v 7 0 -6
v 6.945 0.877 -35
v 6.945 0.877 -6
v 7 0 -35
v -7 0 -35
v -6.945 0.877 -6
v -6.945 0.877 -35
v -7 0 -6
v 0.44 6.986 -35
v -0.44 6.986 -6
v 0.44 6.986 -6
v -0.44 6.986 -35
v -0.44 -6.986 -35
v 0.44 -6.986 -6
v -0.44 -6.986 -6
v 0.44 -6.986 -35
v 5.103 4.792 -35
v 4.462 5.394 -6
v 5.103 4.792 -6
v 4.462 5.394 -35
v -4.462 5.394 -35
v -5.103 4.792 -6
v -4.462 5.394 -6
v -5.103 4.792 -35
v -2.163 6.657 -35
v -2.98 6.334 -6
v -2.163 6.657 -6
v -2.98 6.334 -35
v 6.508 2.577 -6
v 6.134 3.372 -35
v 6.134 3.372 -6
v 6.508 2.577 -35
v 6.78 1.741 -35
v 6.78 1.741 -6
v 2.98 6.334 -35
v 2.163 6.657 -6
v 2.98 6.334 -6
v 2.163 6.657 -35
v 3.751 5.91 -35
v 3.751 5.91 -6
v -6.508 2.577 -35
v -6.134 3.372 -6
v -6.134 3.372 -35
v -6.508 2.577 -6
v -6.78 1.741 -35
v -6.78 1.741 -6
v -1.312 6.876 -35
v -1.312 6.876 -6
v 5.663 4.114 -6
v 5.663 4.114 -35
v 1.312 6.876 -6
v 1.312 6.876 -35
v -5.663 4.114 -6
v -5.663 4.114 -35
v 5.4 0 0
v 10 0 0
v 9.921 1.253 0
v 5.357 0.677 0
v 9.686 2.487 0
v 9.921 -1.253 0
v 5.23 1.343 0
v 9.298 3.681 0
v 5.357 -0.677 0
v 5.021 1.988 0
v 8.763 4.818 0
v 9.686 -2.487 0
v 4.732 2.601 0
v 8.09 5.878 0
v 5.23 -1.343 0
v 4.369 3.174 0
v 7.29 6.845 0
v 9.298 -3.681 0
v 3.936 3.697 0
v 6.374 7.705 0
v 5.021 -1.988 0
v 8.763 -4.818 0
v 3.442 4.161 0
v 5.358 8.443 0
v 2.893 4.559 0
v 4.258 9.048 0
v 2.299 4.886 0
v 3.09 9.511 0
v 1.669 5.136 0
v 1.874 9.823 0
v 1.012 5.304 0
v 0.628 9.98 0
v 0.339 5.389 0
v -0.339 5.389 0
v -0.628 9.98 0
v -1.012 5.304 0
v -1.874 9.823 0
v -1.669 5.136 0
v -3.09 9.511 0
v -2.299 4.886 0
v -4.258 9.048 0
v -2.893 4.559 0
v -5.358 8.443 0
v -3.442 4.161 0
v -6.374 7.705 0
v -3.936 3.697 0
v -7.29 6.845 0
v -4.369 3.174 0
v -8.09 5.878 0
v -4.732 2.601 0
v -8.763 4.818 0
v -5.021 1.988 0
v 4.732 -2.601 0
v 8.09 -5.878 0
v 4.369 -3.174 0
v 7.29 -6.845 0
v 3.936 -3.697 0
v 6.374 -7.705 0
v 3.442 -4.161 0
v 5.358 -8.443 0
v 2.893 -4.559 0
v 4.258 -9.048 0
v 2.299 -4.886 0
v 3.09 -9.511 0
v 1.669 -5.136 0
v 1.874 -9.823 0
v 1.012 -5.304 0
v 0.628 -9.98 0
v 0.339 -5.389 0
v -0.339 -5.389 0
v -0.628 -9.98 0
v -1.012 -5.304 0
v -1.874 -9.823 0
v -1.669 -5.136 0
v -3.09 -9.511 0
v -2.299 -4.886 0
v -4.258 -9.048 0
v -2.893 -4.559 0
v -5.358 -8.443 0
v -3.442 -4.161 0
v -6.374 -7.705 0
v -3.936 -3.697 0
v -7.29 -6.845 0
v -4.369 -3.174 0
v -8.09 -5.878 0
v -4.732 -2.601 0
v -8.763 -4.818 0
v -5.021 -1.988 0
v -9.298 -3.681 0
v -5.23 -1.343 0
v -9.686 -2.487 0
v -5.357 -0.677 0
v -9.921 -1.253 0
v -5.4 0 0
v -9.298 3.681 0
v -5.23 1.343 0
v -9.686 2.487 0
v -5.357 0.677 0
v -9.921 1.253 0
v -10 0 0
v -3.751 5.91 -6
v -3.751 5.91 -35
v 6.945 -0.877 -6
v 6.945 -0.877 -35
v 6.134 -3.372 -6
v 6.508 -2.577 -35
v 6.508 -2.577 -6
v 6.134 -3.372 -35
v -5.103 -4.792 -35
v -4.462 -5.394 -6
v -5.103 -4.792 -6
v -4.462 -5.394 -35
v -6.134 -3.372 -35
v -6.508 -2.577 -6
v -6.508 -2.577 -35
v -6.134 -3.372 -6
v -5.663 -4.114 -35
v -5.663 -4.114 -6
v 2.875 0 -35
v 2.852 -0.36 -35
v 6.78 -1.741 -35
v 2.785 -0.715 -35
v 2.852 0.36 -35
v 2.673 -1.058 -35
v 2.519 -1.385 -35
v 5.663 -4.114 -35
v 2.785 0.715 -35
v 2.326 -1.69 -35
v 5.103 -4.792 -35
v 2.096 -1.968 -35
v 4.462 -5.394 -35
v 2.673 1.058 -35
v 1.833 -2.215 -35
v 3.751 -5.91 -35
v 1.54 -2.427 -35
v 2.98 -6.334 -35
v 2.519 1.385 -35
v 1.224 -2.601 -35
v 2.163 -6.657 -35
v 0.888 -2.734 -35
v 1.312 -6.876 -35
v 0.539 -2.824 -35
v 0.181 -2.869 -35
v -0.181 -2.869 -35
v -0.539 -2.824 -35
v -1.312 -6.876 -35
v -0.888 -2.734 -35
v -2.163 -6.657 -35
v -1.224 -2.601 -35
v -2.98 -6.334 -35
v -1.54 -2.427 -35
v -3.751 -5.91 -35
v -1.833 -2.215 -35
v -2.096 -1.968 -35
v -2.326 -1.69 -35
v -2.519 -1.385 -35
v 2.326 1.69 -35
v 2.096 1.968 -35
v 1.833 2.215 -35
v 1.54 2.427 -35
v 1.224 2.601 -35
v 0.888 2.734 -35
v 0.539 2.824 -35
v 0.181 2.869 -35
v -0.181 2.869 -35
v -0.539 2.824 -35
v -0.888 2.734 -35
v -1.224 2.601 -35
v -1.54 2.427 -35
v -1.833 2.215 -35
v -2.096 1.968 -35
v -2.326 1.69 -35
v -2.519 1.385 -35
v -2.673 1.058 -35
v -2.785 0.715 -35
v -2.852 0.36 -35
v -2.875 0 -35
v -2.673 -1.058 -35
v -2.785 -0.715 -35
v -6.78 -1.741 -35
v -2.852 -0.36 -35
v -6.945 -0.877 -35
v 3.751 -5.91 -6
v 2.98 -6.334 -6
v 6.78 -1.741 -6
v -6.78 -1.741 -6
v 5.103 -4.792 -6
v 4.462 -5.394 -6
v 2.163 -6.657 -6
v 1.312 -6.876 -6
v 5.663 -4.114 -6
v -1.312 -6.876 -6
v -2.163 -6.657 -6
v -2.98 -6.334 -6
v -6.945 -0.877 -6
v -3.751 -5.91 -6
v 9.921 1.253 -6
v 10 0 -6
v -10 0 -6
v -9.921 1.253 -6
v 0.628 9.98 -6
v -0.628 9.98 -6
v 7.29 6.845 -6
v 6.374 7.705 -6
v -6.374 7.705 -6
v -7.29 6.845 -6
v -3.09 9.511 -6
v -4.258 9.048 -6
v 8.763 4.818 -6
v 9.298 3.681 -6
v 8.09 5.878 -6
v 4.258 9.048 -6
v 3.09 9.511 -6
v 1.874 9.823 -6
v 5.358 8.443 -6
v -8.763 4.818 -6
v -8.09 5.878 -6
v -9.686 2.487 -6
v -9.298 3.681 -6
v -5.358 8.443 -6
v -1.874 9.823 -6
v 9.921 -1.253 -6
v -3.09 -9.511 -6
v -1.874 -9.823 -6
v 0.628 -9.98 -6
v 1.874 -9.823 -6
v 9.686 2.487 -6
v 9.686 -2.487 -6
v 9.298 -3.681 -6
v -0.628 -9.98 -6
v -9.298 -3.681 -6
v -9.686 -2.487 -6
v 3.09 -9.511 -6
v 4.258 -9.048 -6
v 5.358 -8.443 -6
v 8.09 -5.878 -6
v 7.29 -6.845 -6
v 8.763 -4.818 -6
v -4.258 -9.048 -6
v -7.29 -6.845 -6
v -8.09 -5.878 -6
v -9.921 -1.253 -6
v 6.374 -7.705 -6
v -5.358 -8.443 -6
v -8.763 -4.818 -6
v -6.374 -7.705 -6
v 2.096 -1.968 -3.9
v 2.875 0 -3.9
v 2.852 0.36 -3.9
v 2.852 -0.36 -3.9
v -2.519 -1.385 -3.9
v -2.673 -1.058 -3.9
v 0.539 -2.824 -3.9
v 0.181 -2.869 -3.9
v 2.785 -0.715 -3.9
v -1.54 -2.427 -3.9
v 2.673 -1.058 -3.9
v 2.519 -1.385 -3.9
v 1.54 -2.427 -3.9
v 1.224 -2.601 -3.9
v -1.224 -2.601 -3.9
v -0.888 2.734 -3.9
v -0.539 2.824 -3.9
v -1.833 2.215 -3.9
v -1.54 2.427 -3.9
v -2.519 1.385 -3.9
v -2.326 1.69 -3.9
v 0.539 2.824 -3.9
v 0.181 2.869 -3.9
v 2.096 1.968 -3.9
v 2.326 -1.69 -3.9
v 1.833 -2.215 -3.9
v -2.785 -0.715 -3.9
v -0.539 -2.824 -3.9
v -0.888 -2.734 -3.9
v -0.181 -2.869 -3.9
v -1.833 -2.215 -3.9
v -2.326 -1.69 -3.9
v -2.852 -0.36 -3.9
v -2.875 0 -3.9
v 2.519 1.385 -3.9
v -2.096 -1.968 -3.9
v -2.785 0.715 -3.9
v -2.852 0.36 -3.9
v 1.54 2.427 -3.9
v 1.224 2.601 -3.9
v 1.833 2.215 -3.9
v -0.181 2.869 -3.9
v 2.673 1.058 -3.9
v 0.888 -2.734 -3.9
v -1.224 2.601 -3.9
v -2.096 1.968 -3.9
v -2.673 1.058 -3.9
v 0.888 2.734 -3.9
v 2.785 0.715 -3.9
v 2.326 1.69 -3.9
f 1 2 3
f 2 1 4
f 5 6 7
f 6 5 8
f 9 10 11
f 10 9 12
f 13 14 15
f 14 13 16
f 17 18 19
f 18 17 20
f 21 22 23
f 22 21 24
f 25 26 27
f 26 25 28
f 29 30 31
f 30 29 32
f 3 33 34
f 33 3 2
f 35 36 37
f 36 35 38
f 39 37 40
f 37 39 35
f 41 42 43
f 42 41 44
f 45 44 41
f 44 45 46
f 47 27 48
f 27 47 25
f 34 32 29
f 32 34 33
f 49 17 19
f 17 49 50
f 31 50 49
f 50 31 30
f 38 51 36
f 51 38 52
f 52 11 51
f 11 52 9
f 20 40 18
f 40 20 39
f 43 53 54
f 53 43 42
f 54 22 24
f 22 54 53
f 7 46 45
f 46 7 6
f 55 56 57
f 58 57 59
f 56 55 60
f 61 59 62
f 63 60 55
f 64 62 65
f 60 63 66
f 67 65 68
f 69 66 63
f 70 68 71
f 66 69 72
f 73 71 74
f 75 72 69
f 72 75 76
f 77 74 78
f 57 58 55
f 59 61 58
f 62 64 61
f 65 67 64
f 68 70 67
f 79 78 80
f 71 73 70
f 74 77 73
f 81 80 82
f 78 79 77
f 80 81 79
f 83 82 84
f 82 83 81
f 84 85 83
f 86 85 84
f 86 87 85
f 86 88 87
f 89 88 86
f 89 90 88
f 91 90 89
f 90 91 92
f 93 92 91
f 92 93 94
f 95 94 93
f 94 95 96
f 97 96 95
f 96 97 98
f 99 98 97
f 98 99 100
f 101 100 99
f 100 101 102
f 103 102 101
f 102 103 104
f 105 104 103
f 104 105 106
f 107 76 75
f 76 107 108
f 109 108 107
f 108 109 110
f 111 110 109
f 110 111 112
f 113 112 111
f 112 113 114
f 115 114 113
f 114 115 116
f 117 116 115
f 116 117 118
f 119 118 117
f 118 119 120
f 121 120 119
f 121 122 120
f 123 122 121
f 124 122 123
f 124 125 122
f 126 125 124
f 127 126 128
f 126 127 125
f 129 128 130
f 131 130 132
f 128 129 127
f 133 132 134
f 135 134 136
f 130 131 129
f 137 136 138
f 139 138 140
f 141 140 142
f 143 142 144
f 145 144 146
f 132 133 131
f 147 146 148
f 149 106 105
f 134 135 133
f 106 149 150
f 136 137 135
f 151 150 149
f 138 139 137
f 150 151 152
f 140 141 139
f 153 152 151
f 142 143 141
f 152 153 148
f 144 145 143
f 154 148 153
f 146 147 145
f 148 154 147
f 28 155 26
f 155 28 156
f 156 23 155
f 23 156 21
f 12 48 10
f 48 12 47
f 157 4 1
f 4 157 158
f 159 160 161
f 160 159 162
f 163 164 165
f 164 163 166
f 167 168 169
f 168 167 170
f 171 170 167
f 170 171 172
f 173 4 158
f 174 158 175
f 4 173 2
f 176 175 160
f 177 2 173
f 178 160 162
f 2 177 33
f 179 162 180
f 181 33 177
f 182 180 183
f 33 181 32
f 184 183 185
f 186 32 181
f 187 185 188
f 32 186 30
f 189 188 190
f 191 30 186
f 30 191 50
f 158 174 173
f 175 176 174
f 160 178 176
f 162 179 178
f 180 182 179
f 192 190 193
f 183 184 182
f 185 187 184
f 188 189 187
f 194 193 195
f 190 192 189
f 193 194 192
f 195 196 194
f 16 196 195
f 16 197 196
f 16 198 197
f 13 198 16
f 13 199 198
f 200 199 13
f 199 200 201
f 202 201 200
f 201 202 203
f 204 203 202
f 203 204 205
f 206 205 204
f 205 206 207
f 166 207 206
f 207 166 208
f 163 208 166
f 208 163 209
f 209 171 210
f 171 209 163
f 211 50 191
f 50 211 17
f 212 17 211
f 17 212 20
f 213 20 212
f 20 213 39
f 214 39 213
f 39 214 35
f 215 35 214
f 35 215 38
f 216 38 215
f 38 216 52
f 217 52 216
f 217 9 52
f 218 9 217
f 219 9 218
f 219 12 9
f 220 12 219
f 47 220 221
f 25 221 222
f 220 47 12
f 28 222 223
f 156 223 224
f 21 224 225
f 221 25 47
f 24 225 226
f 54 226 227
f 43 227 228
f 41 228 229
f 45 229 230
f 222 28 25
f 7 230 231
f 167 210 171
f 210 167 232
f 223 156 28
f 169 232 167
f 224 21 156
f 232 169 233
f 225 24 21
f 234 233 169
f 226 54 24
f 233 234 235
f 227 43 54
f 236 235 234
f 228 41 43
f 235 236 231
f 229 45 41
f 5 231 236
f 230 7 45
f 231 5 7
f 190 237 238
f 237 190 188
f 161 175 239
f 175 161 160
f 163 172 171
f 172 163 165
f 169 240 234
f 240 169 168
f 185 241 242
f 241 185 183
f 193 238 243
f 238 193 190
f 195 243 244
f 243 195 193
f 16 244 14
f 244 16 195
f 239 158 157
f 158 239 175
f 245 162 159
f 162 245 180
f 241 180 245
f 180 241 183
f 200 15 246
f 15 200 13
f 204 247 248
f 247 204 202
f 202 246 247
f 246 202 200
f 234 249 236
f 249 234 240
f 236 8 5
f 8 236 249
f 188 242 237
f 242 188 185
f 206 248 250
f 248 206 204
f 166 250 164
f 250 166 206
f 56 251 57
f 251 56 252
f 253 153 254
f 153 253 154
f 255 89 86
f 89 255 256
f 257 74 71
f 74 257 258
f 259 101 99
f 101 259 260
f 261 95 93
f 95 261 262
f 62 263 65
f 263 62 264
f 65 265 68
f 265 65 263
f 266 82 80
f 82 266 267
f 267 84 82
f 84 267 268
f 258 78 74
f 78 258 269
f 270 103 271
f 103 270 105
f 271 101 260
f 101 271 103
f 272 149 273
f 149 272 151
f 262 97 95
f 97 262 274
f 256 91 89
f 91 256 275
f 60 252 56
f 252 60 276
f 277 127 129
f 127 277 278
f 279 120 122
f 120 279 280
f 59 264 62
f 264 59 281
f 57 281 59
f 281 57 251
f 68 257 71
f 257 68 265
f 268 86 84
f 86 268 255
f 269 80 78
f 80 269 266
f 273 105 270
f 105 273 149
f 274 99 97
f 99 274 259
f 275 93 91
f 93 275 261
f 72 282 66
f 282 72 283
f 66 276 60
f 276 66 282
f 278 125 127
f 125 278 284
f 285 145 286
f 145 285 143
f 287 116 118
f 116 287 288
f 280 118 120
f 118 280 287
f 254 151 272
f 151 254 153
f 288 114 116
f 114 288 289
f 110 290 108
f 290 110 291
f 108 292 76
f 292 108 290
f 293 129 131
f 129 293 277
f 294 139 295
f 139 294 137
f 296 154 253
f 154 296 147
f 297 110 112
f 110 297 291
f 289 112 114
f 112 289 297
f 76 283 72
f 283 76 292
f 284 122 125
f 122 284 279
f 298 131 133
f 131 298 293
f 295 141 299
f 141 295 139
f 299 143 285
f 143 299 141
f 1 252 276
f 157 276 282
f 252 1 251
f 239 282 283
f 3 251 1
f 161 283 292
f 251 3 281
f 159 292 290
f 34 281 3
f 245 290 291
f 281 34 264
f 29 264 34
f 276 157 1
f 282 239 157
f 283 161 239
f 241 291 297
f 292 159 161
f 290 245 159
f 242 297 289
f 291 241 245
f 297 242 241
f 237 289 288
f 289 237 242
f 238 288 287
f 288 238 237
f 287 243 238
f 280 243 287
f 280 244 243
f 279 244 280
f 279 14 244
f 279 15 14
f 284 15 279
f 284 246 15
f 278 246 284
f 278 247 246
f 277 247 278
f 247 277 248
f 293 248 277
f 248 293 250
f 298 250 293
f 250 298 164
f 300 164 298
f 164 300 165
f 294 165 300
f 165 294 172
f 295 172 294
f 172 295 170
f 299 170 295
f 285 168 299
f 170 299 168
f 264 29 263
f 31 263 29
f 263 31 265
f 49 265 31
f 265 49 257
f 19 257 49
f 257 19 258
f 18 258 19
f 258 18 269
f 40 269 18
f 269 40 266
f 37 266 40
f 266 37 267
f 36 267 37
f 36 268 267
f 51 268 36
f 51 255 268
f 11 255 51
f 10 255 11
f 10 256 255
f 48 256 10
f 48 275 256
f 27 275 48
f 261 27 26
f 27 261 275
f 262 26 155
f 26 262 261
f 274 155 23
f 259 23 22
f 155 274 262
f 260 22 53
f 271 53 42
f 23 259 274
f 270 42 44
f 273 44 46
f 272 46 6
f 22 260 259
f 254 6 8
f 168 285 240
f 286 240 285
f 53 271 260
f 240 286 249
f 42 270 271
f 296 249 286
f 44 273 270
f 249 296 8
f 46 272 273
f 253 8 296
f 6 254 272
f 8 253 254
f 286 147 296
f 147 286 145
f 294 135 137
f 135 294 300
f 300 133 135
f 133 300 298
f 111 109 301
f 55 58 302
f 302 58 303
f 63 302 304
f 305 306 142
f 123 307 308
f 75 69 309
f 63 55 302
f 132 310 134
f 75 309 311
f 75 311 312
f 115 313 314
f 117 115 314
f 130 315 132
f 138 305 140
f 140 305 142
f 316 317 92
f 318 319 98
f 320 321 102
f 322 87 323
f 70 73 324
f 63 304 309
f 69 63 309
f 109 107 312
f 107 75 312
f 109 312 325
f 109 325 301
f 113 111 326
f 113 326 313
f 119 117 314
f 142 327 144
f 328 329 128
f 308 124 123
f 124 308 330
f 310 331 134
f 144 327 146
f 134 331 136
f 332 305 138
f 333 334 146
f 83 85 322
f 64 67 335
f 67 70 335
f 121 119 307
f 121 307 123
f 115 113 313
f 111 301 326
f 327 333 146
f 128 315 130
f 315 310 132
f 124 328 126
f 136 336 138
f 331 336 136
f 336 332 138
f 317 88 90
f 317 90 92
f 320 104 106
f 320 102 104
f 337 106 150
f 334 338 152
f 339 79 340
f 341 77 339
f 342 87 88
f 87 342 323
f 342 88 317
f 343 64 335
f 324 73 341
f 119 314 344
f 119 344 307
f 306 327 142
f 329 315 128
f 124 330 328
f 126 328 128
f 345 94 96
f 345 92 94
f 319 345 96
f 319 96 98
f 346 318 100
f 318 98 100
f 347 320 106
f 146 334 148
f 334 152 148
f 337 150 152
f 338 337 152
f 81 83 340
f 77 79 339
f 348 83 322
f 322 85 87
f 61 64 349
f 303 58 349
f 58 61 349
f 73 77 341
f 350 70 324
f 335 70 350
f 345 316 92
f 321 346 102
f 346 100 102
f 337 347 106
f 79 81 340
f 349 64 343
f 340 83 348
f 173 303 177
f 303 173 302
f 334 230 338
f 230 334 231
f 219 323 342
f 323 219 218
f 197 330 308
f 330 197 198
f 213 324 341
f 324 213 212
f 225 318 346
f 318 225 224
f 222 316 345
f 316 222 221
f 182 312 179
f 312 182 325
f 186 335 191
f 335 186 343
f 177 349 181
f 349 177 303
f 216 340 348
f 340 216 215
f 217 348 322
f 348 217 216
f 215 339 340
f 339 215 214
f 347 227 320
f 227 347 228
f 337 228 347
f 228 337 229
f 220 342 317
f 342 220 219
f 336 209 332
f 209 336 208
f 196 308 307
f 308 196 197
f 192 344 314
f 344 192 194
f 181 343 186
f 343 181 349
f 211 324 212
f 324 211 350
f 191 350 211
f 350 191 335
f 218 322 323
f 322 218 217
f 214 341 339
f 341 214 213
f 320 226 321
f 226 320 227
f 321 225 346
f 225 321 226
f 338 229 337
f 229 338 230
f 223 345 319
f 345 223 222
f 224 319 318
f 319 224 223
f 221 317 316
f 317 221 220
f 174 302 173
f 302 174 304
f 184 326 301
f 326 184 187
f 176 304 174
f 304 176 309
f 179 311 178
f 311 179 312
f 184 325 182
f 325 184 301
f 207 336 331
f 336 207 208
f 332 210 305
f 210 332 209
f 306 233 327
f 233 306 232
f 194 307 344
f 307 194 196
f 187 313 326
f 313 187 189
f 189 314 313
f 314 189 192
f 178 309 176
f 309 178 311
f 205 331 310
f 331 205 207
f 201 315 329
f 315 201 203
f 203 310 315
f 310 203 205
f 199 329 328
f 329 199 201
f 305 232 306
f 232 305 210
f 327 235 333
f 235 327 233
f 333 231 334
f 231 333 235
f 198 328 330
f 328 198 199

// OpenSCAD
$fn = 50;


difference() {
	union() {
		translate(v = [0, 0, -35.0000000000]) {
			cylinder(h = 35, r = 7.0000000000);
		}
		translate(v = [0, 0, -6.0000000000]) {
			cylinder(h = 6, r = 10.0000000000);
		}
	}
	union() {
		translate(v = [0, 0, 0]) {
			rotate(a = [0, 0, 0]) {
				difference() {
					union() {
						#translate(v = [0, 0, -35.0000000000]) {
							cylinder(h = 35, r = 2.6000000000);
						}
						#translate(v = [0, 0, -3.9000000000]) {
							cylinder(h = 3.9000000000, r = 7.0000000000, r1 = 2.8750000000, r2 = 5.4000000000);
						}
						#translate(v = [0, 0, -35.0000000000]) {
							cylinder(h = 35, r = 2.8750000000);
						}
						#translate(v = [0, 0, -35.0000000000]) {
							cylinder(h = 35, r = 2.6000000000);
						}
					}
					union();
				}
			}
		}
	}
}
